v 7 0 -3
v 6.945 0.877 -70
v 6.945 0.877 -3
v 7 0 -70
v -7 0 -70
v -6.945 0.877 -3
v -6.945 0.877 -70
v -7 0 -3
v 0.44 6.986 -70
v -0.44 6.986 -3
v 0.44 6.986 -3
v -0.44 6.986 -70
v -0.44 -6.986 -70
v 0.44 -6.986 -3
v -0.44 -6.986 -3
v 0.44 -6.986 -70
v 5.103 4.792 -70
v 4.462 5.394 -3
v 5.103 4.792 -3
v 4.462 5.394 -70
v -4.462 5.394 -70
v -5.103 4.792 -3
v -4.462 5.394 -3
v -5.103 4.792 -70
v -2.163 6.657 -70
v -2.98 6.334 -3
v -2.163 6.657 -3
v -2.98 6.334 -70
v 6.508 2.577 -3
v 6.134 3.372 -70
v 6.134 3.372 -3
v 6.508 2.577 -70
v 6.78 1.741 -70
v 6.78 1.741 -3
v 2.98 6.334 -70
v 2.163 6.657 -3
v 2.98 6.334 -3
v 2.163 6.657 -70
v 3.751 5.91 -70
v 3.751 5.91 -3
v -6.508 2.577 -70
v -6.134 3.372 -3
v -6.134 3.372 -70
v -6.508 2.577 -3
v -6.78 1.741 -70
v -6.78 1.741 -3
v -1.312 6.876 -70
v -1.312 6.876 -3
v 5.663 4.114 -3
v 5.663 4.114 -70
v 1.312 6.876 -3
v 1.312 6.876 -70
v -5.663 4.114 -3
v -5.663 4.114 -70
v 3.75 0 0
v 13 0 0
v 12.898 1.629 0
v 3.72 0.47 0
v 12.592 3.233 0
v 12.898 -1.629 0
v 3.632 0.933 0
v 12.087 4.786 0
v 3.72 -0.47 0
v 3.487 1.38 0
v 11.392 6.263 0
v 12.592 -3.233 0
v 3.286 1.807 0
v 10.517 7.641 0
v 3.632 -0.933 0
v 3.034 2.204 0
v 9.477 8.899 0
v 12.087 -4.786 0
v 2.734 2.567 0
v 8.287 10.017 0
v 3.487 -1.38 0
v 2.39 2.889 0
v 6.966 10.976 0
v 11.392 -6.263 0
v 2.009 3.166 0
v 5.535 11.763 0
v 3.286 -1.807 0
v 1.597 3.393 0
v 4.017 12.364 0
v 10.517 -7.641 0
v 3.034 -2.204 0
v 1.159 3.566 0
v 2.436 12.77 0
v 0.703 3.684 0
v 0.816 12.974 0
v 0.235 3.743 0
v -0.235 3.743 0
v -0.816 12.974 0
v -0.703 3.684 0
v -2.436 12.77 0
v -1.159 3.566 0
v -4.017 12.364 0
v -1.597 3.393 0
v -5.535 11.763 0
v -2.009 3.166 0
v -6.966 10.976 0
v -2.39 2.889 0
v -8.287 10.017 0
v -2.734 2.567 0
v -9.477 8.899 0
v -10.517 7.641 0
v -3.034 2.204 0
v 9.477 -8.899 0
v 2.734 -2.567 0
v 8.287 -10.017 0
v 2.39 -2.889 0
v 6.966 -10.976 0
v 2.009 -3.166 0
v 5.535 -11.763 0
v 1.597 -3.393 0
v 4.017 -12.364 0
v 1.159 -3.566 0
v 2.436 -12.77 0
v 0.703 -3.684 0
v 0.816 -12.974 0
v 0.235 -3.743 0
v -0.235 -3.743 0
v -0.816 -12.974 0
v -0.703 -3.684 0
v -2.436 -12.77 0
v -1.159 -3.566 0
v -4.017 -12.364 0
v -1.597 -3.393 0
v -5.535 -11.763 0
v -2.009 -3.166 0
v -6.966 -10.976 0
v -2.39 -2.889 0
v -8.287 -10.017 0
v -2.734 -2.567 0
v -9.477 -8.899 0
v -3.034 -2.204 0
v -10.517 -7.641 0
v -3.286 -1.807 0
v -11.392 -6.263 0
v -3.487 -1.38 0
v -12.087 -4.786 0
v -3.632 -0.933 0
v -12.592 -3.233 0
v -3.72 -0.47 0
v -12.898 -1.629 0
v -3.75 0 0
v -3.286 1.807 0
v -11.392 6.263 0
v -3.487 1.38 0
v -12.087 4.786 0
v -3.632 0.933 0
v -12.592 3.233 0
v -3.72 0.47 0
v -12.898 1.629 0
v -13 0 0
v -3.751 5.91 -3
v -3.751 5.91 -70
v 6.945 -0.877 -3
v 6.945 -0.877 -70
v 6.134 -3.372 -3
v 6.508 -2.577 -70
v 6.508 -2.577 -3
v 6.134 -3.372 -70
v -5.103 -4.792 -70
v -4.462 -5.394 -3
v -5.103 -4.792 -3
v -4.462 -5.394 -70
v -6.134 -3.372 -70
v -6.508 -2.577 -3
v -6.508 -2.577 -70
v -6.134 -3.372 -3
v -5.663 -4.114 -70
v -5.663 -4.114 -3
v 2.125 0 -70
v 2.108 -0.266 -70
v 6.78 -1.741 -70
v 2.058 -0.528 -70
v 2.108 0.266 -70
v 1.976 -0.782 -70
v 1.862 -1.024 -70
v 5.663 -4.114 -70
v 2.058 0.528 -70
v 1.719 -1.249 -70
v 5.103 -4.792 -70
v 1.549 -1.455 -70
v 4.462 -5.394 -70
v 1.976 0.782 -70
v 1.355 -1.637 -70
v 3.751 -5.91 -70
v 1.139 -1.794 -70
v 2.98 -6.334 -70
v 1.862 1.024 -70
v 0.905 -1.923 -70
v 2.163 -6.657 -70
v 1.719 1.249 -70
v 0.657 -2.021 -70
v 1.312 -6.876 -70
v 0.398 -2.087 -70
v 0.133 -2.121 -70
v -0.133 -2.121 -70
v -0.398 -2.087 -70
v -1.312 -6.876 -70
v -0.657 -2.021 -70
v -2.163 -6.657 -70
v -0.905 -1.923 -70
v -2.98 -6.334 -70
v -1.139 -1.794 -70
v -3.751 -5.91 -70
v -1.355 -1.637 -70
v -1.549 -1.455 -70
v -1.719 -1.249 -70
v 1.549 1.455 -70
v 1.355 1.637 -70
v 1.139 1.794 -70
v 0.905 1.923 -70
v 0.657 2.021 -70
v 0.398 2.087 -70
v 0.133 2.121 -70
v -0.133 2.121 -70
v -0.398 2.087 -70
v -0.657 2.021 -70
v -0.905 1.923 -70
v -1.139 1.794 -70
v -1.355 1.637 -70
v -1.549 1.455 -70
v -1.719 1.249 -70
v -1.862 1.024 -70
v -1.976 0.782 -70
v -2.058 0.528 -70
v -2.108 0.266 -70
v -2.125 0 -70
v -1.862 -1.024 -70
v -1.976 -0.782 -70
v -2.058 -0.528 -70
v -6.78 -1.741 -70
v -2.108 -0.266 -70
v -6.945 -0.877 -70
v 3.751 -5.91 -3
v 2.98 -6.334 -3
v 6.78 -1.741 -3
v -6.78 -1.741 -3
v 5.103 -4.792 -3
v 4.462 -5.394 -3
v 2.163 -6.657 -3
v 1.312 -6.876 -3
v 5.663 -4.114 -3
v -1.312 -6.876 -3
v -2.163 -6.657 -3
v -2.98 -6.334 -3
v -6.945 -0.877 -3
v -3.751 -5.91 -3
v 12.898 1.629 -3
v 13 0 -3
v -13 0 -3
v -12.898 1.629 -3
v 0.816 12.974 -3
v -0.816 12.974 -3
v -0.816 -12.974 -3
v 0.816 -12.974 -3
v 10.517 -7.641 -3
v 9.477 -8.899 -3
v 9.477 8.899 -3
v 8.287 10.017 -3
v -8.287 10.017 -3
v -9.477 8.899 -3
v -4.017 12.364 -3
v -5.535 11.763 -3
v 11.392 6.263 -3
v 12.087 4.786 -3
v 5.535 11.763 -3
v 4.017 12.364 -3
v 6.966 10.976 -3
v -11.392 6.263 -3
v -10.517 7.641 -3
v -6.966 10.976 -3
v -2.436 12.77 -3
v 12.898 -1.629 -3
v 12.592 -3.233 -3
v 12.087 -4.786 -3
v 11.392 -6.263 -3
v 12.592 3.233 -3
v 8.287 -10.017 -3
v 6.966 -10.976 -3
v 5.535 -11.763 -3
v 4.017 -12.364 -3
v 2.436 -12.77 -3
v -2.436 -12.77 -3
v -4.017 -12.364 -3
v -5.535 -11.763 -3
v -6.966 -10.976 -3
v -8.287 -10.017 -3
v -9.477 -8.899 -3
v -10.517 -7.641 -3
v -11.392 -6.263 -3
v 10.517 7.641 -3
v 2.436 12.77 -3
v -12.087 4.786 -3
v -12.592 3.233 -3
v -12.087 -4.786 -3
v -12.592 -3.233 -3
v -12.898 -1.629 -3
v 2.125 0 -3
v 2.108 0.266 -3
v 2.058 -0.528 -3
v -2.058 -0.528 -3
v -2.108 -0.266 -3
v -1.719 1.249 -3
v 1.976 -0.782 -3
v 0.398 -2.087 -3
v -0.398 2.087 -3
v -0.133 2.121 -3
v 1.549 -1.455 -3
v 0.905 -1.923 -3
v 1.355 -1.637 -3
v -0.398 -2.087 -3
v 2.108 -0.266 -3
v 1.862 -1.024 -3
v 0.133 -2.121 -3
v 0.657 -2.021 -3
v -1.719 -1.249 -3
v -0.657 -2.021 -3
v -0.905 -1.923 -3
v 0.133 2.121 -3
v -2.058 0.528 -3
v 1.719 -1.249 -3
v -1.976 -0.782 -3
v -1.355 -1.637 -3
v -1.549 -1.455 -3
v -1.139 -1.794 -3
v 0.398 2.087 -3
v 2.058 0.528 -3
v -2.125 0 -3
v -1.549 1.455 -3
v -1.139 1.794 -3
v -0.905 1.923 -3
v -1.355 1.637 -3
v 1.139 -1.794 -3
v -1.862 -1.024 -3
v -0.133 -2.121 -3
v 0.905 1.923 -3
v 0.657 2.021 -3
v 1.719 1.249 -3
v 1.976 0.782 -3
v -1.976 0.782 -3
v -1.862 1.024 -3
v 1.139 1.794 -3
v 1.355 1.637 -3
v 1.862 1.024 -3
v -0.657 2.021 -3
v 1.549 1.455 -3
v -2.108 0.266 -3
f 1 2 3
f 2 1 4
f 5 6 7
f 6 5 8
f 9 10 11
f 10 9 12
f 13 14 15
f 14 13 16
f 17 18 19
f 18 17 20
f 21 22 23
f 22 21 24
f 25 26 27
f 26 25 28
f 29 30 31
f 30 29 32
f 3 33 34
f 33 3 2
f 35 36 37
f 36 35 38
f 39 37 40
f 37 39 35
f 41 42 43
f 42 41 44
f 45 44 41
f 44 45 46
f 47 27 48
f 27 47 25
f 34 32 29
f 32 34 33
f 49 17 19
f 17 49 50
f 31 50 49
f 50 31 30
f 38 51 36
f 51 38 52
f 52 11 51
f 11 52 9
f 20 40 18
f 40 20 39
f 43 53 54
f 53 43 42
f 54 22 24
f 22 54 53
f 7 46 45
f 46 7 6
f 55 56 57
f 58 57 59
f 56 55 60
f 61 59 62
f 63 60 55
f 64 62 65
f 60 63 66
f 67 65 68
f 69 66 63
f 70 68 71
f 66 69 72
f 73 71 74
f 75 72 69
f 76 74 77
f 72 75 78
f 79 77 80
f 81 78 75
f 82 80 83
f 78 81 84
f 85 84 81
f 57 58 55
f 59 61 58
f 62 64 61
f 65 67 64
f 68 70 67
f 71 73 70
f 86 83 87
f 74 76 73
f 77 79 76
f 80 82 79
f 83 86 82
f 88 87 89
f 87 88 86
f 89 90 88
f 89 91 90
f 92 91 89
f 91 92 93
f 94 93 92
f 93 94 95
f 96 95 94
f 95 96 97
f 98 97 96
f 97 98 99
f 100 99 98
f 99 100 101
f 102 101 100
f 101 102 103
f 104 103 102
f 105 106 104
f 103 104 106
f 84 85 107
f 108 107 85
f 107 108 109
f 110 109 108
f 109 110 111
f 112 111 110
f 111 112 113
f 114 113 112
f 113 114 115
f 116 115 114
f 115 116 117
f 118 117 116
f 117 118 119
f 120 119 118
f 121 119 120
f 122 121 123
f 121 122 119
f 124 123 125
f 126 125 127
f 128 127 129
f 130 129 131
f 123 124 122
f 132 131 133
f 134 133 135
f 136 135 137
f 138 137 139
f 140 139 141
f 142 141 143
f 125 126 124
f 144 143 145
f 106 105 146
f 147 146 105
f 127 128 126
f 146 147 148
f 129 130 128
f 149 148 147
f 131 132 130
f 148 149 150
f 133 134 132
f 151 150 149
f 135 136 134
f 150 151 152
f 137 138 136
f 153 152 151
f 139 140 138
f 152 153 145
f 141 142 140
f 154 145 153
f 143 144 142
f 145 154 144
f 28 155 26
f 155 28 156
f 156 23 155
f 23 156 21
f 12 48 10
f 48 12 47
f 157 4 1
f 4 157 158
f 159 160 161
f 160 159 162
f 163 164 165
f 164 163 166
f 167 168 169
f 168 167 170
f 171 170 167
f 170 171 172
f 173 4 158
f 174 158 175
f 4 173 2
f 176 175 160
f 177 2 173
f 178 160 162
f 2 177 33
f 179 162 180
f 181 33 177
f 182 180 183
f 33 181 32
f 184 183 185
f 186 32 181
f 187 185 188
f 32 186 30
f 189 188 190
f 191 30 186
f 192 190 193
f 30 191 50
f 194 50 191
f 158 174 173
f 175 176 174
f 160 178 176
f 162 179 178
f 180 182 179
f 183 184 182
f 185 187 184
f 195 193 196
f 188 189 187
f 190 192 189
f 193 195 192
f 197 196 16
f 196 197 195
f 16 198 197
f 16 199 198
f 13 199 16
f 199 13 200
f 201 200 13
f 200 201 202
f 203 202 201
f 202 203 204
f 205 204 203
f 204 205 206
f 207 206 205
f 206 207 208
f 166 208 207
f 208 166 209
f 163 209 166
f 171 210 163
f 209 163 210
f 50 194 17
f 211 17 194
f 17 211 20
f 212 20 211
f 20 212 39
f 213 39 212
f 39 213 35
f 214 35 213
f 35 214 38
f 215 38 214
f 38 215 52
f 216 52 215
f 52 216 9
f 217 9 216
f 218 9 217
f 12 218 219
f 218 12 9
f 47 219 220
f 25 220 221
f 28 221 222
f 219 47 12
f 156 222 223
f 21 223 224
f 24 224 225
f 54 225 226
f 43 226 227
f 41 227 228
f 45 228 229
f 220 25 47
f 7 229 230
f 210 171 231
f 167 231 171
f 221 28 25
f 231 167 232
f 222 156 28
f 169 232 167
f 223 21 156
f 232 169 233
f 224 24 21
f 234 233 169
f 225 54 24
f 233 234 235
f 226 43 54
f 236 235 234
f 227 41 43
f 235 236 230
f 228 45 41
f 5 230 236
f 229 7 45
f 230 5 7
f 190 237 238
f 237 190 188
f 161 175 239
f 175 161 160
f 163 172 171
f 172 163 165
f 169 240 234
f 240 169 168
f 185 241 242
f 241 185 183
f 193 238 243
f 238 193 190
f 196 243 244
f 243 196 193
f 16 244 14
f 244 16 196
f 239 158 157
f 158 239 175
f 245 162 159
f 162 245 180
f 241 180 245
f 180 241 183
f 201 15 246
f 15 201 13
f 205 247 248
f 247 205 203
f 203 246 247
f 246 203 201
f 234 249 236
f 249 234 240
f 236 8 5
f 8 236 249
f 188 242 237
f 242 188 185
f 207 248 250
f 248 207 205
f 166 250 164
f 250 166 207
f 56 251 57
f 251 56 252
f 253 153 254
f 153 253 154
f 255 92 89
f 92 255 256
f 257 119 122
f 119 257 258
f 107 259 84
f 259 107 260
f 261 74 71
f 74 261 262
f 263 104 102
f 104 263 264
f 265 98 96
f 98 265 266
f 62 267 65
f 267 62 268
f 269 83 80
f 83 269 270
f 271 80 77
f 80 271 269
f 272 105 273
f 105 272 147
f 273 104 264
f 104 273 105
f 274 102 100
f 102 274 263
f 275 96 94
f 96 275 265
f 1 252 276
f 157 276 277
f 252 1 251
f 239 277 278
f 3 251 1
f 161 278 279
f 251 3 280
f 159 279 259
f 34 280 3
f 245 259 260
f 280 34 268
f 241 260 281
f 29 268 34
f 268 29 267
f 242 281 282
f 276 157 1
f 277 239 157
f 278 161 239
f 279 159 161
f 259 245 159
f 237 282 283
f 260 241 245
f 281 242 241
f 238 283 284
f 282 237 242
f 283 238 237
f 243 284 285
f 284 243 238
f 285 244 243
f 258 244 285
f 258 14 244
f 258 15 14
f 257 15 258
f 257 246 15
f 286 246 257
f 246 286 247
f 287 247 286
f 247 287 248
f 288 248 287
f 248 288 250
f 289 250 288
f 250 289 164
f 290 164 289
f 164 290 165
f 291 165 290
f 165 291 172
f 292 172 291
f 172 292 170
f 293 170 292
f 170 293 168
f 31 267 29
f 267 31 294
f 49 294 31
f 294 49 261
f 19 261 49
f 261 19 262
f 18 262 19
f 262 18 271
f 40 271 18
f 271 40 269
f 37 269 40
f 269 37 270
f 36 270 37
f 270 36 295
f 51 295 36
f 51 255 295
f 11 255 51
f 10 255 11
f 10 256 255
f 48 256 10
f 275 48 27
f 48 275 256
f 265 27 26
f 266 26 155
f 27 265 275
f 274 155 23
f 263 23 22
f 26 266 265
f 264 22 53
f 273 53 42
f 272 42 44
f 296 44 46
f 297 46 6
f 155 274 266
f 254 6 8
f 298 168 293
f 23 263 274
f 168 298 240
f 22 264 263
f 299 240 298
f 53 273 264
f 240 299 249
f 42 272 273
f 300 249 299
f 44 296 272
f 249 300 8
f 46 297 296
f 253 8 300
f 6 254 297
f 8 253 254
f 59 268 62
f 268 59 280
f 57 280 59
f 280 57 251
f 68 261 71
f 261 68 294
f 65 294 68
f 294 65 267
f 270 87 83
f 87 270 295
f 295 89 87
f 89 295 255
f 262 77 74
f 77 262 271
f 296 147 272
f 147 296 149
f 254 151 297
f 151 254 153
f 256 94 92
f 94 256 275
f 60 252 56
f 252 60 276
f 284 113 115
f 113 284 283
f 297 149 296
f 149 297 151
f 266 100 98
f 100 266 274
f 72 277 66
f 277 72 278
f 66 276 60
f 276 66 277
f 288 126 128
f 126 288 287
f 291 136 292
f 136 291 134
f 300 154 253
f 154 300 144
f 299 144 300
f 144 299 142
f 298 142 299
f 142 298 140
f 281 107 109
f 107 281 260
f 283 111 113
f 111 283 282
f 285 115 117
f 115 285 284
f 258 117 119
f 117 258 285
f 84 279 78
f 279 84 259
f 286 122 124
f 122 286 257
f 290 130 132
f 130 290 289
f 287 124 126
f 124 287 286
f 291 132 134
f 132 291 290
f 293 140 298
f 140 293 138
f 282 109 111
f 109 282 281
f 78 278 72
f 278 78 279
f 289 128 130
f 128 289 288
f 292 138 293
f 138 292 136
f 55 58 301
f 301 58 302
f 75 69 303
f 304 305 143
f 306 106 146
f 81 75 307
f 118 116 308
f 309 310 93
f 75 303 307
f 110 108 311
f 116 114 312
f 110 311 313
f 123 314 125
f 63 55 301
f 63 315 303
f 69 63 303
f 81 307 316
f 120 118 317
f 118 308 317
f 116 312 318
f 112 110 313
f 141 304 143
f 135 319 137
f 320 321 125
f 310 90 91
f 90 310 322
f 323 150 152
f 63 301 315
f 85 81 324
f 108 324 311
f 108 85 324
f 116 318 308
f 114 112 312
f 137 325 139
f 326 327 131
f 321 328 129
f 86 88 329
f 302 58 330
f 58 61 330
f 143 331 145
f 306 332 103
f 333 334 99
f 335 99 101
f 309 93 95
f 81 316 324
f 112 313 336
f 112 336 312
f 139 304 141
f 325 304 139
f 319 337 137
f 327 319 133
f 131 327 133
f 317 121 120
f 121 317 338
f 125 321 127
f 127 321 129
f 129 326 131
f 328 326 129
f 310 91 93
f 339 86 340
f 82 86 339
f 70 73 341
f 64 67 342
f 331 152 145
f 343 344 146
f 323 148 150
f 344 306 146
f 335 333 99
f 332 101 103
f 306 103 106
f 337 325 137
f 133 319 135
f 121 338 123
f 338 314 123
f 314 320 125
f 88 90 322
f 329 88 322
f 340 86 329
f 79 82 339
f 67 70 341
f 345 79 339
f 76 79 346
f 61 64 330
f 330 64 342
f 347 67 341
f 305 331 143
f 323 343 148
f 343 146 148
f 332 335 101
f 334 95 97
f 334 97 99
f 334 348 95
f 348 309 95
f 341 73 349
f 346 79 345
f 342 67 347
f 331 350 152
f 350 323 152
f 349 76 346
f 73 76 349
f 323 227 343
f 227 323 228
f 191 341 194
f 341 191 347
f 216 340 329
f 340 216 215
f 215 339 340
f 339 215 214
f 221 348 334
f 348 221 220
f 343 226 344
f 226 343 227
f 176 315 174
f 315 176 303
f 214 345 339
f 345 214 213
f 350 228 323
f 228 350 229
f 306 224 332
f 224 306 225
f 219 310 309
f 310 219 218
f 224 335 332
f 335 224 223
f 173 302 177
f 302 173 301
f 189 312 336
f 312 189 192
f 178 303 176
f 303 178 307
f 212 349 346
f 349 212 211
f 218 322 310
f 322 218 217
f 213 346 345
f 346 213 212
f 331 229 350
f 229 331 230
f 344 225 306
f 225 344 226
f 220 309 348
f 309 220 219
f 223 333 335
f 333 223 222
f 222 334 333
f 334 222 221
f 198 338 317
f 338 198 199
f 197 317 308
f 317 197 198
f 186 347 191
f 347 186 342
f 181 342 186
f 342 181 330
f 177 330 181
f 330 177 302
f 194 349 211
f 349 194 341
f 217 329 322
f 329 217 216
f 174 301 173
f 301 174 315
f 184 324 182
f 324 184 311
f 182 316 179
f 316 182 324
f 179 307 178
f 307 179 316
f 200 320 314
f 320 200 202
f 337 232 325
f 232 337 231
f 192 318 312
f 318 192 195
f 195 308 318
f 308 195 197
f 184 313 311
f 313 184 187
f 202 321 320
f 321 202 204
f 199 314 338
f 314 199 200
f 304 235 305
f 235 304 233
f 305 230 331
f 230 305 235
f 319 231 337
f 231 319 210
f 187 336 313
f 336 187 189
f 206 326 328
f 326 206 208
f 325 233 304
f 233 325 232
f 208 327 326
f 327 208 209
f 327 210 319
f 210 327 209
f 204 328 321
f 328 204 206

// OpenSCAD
$fn = 50;


difference() {
	union() {
		translate(v = [0, 0, -70.0000000000]) {
			cylinder(h = 70, r = 7.0000000000);
		}
		translate(v = [0, 0, -3.0000000000]) {
			cylinder(h = 3, r = 13.0000000000);
		}
	}
	union() {
		translate(v = [0, 0, 0]) {
			rotate(a = [0, 0, 0]) {
				difference() {
					union() {
						#translate(v = [0, 0, -70.0000000000]) {
							cylinder(h = 70, r = 2.0000000000);
						}
						#translate(v = [0, 0, -3]) {
							cylinder(h = 3, r1 = 2.1250000000, r2 = 3.7500000000);
						}
						#translate(v = [0, 0, -70.0000000000]) {
							cylinder(h = 70, r = 2.1250000000);
						}
						#translate(v = [0, 0, -70.0000000000]) {
							cylinder(h = 70, r = 2.0000000000);
						}
					}
					union();
				}
			}
		}
	}
}
